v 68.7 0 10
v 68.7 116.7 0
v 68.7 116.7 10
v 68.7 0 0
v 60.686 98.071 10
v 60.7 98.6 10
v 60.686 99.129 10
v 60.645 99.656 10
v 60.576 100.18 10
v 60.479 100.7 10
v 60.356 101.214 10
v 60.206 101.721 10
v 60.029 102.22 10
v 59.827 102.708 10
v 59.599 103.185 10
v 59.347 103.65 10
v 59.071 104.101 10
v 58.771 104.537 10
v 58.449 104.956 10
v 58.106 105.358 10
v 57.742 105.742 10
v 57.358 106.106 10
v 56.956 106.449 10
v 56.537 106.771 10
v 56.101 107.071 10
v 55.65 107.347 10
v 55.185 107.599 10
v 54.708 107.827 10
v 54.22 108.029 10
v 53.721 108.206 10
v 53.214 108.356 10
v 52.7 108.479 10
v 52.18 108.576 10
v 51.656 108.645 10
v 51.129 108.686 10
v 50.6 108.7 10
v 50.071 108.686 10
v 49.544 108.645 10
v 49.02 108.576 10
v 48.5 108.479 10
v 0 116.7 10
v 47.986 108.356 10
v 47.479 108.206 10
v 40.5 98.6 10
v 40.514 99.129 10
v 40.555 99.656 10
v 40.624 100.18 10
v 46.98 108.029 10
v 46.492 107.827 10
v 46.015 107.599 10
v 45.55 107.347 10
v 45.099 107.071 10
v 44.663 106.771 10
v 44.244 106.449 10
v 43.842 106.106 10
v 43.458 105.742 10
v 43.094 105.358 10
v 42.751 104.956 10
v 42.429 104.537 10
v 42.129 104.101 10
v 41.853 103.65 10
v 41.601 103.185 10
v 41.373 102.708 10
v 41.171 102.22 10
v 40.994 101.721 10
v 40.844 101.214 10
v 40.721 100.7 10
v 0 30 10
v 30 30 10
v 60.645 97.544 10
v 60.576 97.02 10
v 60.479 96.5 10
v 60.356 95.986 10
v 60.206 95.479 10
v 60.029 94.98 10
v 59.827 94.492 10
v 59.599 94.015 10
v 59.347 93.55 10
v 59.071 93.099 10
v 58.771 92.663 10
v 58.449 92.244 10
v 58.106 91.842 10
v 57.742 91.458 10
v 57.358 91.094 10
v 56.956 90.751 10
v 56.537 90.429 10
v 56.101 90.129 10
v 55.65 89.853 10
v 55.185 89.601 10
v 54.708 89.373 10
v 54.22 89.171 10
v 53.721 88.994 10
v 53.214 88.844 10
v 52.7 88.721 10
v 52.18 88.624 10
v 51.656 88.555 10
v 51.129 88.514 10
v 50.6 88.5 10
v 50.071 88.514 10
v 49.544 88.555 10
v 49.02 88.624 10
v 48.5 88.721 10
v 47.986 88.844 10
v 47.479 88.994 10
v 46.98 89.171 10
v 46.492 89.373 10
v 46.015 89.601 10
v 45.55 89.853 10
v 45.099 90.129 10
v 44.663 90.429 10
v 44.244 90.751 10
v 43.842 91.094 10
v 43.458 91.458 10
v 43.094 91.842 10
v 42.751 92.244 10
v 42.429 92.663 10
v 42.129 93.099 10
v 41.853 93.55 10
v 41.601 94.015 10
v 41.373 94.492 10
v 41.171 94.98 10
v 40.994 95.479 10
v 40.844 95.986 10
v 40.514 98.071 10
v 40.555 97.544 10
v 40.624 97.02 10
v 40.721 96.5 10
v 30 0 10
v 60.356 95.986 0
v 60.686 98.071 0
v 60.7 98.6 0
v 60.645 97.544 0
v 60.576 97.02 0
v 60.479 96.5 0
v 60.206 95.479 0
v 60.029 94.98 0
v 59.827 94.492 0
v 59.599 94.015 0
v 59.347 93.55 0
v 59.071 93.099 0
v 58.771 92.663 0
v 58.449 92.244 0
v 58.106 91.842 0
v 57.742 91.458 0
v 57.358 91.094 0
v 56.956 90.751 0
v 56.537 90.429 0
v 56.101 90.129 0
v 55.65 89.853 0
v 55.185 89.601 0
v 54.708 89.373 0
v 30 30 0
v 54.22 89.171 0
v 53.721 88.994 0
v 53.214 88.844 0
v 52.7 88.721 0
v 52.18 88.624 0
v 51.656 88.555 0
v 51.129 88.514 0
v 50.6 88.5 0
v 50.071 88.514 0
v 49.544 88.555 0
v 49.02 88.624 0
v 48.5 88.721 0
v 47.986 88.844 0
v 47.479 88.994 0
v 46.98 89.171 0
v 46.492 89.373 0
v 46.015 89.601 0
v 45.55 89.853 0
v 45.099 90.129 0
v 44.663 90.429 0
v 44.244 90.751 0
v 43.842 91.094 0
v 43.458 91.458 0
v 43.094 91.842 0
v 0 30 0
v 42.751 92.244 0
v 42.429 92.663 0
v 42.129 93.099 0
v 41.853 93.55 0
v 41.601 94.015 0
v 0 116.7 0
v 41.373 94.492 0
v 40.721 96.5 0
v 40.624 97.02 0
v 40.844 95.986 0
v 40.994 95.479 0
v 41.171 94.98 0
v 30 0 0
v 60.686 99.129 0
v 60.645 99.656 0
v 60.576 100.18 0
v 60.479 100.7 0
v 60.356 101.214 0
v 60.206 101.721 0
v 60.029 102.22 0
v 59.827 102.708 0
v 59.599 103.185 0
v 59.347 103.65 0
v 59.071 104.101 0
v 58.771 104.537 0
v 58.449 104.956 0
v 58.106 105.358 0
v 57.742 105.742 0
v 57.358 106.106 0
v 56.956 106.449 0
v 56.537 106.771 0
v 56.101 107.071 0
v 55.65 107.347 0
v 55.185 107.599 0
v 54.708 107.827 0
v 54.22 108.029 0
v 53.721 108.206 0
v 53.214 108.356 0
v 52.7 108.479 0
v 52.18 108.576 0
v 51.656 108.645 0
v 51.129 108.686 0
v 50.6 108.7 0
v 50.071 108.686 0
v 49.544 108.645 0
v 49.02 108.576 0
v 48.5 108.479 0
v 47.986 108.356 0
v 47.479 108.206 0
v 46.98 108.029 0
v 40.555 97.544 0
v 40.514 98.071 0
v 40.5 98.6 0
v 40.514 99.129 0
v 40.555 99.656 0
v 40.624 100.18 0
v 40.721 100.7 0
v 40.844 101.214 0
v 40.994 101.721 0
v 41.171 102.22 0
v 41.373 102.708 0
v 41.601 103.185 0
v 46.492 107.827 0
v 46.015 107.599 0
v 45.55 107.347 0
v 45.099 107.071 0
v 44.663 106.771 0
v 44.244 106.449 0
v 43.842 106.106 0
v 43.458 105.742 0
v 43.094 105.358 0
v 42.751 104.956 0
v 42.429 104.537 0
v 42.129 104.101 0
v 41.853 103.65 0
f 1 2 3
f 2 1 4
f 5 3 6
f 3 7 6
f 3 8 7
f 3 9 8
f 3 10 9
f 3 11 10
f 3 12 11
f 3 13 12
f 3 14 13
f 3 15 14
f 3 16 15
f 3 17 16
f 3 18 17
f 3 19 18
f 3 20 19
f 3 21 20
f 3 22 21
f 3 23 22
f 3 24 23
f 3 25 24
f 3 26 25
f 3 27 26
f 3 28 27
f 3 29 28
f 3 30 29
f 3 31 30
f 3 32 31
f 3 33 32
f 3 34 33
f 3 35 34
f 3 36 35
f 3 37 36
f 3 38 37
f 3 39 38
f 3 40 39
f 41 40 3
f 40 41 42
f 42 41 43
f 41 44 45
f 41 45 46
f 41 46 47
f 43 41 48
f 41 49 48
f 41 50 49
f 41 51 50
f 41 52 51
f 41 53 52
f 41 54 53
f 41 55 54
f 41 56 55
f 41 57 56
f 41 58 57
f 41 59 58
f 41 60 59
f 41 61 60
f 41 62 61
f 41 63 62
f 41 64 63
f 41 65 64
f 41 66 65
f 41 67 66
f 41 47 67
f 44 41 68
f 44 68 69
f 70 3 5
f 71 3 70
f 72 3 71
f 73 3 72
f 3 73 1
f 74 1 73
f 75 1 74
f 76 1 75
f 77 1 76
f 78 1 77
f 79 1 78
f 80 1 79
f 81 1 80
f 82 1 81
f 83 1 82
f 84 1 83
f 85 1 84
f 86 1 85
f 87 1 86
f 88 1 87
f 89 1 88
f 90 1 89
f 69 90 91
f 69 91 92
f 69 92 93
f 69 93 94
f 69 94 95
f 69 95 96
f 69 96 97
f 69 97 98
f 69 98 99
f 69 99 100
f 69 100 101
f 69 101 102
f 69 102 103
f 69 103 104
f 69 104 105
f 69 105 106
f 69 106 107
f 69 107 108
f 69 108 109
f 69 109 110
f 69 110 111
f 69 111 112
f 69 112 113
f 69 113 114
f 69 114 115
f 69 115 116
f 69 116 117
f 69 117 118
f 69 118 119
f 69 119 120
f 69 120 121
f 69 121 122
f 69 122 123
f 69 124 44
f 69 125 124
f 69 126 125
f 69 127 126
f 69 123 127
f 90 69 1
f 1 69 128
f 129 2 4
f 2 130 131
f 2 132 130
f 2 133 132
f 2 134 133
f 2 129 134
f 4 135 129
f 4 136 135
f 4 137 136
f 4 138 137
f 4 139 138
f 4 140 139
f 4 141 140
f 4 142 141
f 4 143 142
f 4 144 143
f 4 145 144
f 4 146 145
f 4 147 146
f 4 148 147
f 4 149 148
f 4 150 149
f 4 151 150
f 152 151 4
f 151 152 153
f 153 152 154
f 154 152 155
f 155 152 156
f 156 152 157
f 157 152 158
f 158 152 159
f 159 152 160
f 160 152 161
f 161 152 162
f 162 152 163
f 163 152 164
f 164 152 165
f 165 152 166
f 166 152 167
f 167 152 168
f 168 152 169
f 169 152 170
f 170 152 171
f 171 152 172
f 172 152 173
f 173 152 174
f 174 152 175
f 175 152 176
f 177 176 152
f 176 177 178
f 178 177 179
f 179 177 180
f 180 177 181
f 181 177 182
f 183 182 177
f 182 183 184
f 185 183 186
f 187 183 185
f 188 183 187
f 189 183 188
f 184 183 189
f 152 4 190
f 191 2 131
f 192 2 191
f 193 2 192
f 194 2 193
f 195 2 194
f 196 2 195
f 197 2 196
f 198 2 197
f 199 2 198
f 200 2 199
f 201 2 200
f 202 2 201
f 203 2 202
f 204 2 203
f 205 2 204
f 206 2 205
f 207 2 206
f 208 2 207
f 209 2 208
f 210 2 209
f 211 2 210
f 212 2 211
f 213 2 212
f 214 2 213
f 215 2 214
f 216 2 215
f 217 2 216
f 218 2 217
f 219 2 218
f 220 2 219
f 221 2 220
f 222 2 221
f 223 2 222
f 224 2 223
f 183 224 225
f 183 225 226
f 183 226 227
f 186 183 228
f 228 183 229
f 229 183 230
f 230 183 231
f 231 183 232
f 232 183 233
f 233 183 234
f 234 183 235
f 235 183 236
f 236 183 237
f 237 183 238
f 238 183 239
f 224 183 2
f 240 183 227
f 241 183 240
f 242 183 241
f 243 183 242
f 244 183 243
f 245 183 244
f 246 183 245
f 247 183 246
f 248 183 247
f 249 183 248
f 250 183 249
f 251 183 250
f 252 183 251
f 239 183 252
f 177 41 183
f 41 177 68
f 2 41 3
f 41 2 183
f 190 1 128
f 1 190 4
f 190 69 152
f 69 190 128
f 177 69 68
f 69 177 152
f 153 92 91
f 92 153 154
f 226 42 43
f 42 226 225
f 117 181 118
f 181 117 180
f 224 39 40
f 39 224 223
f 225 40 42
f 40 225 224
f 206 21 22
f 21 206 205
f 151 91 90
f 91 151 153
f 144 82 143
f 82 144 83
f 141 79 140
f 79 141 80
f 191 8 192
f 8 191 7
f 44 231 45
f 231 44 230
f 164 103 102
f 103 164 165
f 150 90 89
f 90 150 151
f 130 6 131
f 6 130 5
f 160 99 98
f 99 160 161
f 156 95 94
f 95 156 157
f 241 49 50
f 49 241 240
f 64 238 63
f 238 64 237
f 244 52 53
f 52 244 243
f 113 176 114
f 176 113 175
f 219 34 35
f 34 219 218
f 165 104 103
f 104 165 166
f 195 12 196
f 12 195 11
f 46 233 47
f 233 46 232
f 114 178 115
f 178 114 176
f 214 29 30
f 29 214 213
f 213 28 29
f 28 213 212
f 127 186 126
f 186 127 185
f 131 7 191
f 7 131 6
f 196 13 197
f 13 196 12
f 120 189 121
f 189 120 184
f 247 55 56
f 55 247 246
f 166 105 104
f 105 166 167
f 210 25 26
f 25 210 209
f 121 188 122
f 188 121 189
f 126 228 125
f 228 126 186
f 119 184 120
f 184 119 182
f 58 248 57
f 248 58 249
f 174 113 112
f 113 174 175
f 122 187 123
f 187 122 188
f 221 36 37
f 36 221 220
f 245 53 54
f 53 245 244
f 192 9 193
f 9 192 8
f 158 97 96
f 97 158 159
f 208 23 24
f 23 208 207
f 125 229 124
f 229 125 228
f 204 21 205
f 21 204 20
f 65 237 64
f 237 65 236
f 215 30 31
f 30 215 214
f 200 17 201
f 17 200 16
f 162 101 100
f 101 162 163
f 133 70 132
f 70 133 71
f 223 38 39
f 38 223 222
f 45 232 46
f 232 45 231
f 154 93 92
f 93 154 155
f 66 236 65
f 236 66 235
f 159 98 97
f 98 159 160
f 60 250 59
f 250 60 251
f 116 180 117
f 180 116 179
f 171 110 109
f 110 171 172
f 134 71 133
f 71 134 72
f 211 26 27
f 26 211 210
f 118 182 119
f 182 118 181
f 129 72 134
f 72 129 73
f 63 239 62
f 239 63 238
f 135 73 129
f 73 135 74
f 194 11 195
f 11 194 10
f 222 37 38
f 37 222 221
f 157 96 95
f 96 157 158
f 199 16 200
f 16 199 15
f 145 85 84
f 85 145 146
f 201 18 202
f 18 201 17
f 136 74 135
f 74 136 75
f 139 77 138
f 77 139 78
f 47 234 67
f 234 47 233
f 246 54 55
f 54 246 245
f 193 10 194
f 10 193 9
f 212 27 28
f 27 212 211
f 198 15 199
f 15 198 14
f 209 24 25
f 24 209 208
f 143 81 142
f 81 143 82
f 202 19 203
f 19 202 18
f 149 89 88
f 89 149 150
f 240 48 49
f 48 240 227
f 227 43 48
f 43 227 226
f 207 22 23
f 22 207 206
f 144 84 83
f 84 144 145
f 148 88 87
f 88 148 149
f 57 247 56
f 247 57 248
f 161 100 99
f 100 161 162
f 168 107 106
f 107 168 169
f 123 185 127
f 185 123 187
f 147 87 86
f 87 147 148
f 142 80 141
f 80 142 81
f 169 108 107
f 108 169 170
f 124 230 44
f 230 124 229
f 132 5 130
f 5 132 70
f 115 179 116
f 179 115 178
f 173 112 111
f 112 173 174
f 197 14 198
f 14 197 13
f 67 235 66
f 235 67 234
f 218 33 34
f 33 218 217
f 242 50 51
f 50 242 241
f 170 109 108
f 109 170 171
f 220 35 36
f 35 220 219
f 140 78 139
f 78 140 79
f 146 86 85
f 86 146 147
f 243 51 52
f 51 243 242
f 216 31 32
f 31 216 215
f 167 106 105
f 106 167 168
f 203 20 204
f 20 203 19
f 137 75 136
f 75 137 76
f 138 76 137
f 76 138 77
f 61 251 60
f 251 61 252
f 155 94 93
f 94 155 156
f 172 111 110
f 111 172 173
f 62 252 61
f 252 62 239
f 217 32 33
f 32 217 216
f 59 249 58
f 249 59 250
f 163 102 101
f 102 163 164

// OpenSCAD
$fn=120;

height=10;
cut=30;
diameter=20.2;
padding=8;

distanceX = 21 / 2;
distanceY = 69 - 21 / 2; 

width=distanceX+diameter+cut+padding;
depth=distanceY+diameter+cut+padding;

difference() {
  cube([width,depth,height]);
  translate([0,0,-0.5]) cube([cut,cut,height+1]);
  translate([cut+distanceX+diameter/2,cut+distanceY+diameter/2,-0.5]) cylinder(d=diameter,h=height+1);

}
